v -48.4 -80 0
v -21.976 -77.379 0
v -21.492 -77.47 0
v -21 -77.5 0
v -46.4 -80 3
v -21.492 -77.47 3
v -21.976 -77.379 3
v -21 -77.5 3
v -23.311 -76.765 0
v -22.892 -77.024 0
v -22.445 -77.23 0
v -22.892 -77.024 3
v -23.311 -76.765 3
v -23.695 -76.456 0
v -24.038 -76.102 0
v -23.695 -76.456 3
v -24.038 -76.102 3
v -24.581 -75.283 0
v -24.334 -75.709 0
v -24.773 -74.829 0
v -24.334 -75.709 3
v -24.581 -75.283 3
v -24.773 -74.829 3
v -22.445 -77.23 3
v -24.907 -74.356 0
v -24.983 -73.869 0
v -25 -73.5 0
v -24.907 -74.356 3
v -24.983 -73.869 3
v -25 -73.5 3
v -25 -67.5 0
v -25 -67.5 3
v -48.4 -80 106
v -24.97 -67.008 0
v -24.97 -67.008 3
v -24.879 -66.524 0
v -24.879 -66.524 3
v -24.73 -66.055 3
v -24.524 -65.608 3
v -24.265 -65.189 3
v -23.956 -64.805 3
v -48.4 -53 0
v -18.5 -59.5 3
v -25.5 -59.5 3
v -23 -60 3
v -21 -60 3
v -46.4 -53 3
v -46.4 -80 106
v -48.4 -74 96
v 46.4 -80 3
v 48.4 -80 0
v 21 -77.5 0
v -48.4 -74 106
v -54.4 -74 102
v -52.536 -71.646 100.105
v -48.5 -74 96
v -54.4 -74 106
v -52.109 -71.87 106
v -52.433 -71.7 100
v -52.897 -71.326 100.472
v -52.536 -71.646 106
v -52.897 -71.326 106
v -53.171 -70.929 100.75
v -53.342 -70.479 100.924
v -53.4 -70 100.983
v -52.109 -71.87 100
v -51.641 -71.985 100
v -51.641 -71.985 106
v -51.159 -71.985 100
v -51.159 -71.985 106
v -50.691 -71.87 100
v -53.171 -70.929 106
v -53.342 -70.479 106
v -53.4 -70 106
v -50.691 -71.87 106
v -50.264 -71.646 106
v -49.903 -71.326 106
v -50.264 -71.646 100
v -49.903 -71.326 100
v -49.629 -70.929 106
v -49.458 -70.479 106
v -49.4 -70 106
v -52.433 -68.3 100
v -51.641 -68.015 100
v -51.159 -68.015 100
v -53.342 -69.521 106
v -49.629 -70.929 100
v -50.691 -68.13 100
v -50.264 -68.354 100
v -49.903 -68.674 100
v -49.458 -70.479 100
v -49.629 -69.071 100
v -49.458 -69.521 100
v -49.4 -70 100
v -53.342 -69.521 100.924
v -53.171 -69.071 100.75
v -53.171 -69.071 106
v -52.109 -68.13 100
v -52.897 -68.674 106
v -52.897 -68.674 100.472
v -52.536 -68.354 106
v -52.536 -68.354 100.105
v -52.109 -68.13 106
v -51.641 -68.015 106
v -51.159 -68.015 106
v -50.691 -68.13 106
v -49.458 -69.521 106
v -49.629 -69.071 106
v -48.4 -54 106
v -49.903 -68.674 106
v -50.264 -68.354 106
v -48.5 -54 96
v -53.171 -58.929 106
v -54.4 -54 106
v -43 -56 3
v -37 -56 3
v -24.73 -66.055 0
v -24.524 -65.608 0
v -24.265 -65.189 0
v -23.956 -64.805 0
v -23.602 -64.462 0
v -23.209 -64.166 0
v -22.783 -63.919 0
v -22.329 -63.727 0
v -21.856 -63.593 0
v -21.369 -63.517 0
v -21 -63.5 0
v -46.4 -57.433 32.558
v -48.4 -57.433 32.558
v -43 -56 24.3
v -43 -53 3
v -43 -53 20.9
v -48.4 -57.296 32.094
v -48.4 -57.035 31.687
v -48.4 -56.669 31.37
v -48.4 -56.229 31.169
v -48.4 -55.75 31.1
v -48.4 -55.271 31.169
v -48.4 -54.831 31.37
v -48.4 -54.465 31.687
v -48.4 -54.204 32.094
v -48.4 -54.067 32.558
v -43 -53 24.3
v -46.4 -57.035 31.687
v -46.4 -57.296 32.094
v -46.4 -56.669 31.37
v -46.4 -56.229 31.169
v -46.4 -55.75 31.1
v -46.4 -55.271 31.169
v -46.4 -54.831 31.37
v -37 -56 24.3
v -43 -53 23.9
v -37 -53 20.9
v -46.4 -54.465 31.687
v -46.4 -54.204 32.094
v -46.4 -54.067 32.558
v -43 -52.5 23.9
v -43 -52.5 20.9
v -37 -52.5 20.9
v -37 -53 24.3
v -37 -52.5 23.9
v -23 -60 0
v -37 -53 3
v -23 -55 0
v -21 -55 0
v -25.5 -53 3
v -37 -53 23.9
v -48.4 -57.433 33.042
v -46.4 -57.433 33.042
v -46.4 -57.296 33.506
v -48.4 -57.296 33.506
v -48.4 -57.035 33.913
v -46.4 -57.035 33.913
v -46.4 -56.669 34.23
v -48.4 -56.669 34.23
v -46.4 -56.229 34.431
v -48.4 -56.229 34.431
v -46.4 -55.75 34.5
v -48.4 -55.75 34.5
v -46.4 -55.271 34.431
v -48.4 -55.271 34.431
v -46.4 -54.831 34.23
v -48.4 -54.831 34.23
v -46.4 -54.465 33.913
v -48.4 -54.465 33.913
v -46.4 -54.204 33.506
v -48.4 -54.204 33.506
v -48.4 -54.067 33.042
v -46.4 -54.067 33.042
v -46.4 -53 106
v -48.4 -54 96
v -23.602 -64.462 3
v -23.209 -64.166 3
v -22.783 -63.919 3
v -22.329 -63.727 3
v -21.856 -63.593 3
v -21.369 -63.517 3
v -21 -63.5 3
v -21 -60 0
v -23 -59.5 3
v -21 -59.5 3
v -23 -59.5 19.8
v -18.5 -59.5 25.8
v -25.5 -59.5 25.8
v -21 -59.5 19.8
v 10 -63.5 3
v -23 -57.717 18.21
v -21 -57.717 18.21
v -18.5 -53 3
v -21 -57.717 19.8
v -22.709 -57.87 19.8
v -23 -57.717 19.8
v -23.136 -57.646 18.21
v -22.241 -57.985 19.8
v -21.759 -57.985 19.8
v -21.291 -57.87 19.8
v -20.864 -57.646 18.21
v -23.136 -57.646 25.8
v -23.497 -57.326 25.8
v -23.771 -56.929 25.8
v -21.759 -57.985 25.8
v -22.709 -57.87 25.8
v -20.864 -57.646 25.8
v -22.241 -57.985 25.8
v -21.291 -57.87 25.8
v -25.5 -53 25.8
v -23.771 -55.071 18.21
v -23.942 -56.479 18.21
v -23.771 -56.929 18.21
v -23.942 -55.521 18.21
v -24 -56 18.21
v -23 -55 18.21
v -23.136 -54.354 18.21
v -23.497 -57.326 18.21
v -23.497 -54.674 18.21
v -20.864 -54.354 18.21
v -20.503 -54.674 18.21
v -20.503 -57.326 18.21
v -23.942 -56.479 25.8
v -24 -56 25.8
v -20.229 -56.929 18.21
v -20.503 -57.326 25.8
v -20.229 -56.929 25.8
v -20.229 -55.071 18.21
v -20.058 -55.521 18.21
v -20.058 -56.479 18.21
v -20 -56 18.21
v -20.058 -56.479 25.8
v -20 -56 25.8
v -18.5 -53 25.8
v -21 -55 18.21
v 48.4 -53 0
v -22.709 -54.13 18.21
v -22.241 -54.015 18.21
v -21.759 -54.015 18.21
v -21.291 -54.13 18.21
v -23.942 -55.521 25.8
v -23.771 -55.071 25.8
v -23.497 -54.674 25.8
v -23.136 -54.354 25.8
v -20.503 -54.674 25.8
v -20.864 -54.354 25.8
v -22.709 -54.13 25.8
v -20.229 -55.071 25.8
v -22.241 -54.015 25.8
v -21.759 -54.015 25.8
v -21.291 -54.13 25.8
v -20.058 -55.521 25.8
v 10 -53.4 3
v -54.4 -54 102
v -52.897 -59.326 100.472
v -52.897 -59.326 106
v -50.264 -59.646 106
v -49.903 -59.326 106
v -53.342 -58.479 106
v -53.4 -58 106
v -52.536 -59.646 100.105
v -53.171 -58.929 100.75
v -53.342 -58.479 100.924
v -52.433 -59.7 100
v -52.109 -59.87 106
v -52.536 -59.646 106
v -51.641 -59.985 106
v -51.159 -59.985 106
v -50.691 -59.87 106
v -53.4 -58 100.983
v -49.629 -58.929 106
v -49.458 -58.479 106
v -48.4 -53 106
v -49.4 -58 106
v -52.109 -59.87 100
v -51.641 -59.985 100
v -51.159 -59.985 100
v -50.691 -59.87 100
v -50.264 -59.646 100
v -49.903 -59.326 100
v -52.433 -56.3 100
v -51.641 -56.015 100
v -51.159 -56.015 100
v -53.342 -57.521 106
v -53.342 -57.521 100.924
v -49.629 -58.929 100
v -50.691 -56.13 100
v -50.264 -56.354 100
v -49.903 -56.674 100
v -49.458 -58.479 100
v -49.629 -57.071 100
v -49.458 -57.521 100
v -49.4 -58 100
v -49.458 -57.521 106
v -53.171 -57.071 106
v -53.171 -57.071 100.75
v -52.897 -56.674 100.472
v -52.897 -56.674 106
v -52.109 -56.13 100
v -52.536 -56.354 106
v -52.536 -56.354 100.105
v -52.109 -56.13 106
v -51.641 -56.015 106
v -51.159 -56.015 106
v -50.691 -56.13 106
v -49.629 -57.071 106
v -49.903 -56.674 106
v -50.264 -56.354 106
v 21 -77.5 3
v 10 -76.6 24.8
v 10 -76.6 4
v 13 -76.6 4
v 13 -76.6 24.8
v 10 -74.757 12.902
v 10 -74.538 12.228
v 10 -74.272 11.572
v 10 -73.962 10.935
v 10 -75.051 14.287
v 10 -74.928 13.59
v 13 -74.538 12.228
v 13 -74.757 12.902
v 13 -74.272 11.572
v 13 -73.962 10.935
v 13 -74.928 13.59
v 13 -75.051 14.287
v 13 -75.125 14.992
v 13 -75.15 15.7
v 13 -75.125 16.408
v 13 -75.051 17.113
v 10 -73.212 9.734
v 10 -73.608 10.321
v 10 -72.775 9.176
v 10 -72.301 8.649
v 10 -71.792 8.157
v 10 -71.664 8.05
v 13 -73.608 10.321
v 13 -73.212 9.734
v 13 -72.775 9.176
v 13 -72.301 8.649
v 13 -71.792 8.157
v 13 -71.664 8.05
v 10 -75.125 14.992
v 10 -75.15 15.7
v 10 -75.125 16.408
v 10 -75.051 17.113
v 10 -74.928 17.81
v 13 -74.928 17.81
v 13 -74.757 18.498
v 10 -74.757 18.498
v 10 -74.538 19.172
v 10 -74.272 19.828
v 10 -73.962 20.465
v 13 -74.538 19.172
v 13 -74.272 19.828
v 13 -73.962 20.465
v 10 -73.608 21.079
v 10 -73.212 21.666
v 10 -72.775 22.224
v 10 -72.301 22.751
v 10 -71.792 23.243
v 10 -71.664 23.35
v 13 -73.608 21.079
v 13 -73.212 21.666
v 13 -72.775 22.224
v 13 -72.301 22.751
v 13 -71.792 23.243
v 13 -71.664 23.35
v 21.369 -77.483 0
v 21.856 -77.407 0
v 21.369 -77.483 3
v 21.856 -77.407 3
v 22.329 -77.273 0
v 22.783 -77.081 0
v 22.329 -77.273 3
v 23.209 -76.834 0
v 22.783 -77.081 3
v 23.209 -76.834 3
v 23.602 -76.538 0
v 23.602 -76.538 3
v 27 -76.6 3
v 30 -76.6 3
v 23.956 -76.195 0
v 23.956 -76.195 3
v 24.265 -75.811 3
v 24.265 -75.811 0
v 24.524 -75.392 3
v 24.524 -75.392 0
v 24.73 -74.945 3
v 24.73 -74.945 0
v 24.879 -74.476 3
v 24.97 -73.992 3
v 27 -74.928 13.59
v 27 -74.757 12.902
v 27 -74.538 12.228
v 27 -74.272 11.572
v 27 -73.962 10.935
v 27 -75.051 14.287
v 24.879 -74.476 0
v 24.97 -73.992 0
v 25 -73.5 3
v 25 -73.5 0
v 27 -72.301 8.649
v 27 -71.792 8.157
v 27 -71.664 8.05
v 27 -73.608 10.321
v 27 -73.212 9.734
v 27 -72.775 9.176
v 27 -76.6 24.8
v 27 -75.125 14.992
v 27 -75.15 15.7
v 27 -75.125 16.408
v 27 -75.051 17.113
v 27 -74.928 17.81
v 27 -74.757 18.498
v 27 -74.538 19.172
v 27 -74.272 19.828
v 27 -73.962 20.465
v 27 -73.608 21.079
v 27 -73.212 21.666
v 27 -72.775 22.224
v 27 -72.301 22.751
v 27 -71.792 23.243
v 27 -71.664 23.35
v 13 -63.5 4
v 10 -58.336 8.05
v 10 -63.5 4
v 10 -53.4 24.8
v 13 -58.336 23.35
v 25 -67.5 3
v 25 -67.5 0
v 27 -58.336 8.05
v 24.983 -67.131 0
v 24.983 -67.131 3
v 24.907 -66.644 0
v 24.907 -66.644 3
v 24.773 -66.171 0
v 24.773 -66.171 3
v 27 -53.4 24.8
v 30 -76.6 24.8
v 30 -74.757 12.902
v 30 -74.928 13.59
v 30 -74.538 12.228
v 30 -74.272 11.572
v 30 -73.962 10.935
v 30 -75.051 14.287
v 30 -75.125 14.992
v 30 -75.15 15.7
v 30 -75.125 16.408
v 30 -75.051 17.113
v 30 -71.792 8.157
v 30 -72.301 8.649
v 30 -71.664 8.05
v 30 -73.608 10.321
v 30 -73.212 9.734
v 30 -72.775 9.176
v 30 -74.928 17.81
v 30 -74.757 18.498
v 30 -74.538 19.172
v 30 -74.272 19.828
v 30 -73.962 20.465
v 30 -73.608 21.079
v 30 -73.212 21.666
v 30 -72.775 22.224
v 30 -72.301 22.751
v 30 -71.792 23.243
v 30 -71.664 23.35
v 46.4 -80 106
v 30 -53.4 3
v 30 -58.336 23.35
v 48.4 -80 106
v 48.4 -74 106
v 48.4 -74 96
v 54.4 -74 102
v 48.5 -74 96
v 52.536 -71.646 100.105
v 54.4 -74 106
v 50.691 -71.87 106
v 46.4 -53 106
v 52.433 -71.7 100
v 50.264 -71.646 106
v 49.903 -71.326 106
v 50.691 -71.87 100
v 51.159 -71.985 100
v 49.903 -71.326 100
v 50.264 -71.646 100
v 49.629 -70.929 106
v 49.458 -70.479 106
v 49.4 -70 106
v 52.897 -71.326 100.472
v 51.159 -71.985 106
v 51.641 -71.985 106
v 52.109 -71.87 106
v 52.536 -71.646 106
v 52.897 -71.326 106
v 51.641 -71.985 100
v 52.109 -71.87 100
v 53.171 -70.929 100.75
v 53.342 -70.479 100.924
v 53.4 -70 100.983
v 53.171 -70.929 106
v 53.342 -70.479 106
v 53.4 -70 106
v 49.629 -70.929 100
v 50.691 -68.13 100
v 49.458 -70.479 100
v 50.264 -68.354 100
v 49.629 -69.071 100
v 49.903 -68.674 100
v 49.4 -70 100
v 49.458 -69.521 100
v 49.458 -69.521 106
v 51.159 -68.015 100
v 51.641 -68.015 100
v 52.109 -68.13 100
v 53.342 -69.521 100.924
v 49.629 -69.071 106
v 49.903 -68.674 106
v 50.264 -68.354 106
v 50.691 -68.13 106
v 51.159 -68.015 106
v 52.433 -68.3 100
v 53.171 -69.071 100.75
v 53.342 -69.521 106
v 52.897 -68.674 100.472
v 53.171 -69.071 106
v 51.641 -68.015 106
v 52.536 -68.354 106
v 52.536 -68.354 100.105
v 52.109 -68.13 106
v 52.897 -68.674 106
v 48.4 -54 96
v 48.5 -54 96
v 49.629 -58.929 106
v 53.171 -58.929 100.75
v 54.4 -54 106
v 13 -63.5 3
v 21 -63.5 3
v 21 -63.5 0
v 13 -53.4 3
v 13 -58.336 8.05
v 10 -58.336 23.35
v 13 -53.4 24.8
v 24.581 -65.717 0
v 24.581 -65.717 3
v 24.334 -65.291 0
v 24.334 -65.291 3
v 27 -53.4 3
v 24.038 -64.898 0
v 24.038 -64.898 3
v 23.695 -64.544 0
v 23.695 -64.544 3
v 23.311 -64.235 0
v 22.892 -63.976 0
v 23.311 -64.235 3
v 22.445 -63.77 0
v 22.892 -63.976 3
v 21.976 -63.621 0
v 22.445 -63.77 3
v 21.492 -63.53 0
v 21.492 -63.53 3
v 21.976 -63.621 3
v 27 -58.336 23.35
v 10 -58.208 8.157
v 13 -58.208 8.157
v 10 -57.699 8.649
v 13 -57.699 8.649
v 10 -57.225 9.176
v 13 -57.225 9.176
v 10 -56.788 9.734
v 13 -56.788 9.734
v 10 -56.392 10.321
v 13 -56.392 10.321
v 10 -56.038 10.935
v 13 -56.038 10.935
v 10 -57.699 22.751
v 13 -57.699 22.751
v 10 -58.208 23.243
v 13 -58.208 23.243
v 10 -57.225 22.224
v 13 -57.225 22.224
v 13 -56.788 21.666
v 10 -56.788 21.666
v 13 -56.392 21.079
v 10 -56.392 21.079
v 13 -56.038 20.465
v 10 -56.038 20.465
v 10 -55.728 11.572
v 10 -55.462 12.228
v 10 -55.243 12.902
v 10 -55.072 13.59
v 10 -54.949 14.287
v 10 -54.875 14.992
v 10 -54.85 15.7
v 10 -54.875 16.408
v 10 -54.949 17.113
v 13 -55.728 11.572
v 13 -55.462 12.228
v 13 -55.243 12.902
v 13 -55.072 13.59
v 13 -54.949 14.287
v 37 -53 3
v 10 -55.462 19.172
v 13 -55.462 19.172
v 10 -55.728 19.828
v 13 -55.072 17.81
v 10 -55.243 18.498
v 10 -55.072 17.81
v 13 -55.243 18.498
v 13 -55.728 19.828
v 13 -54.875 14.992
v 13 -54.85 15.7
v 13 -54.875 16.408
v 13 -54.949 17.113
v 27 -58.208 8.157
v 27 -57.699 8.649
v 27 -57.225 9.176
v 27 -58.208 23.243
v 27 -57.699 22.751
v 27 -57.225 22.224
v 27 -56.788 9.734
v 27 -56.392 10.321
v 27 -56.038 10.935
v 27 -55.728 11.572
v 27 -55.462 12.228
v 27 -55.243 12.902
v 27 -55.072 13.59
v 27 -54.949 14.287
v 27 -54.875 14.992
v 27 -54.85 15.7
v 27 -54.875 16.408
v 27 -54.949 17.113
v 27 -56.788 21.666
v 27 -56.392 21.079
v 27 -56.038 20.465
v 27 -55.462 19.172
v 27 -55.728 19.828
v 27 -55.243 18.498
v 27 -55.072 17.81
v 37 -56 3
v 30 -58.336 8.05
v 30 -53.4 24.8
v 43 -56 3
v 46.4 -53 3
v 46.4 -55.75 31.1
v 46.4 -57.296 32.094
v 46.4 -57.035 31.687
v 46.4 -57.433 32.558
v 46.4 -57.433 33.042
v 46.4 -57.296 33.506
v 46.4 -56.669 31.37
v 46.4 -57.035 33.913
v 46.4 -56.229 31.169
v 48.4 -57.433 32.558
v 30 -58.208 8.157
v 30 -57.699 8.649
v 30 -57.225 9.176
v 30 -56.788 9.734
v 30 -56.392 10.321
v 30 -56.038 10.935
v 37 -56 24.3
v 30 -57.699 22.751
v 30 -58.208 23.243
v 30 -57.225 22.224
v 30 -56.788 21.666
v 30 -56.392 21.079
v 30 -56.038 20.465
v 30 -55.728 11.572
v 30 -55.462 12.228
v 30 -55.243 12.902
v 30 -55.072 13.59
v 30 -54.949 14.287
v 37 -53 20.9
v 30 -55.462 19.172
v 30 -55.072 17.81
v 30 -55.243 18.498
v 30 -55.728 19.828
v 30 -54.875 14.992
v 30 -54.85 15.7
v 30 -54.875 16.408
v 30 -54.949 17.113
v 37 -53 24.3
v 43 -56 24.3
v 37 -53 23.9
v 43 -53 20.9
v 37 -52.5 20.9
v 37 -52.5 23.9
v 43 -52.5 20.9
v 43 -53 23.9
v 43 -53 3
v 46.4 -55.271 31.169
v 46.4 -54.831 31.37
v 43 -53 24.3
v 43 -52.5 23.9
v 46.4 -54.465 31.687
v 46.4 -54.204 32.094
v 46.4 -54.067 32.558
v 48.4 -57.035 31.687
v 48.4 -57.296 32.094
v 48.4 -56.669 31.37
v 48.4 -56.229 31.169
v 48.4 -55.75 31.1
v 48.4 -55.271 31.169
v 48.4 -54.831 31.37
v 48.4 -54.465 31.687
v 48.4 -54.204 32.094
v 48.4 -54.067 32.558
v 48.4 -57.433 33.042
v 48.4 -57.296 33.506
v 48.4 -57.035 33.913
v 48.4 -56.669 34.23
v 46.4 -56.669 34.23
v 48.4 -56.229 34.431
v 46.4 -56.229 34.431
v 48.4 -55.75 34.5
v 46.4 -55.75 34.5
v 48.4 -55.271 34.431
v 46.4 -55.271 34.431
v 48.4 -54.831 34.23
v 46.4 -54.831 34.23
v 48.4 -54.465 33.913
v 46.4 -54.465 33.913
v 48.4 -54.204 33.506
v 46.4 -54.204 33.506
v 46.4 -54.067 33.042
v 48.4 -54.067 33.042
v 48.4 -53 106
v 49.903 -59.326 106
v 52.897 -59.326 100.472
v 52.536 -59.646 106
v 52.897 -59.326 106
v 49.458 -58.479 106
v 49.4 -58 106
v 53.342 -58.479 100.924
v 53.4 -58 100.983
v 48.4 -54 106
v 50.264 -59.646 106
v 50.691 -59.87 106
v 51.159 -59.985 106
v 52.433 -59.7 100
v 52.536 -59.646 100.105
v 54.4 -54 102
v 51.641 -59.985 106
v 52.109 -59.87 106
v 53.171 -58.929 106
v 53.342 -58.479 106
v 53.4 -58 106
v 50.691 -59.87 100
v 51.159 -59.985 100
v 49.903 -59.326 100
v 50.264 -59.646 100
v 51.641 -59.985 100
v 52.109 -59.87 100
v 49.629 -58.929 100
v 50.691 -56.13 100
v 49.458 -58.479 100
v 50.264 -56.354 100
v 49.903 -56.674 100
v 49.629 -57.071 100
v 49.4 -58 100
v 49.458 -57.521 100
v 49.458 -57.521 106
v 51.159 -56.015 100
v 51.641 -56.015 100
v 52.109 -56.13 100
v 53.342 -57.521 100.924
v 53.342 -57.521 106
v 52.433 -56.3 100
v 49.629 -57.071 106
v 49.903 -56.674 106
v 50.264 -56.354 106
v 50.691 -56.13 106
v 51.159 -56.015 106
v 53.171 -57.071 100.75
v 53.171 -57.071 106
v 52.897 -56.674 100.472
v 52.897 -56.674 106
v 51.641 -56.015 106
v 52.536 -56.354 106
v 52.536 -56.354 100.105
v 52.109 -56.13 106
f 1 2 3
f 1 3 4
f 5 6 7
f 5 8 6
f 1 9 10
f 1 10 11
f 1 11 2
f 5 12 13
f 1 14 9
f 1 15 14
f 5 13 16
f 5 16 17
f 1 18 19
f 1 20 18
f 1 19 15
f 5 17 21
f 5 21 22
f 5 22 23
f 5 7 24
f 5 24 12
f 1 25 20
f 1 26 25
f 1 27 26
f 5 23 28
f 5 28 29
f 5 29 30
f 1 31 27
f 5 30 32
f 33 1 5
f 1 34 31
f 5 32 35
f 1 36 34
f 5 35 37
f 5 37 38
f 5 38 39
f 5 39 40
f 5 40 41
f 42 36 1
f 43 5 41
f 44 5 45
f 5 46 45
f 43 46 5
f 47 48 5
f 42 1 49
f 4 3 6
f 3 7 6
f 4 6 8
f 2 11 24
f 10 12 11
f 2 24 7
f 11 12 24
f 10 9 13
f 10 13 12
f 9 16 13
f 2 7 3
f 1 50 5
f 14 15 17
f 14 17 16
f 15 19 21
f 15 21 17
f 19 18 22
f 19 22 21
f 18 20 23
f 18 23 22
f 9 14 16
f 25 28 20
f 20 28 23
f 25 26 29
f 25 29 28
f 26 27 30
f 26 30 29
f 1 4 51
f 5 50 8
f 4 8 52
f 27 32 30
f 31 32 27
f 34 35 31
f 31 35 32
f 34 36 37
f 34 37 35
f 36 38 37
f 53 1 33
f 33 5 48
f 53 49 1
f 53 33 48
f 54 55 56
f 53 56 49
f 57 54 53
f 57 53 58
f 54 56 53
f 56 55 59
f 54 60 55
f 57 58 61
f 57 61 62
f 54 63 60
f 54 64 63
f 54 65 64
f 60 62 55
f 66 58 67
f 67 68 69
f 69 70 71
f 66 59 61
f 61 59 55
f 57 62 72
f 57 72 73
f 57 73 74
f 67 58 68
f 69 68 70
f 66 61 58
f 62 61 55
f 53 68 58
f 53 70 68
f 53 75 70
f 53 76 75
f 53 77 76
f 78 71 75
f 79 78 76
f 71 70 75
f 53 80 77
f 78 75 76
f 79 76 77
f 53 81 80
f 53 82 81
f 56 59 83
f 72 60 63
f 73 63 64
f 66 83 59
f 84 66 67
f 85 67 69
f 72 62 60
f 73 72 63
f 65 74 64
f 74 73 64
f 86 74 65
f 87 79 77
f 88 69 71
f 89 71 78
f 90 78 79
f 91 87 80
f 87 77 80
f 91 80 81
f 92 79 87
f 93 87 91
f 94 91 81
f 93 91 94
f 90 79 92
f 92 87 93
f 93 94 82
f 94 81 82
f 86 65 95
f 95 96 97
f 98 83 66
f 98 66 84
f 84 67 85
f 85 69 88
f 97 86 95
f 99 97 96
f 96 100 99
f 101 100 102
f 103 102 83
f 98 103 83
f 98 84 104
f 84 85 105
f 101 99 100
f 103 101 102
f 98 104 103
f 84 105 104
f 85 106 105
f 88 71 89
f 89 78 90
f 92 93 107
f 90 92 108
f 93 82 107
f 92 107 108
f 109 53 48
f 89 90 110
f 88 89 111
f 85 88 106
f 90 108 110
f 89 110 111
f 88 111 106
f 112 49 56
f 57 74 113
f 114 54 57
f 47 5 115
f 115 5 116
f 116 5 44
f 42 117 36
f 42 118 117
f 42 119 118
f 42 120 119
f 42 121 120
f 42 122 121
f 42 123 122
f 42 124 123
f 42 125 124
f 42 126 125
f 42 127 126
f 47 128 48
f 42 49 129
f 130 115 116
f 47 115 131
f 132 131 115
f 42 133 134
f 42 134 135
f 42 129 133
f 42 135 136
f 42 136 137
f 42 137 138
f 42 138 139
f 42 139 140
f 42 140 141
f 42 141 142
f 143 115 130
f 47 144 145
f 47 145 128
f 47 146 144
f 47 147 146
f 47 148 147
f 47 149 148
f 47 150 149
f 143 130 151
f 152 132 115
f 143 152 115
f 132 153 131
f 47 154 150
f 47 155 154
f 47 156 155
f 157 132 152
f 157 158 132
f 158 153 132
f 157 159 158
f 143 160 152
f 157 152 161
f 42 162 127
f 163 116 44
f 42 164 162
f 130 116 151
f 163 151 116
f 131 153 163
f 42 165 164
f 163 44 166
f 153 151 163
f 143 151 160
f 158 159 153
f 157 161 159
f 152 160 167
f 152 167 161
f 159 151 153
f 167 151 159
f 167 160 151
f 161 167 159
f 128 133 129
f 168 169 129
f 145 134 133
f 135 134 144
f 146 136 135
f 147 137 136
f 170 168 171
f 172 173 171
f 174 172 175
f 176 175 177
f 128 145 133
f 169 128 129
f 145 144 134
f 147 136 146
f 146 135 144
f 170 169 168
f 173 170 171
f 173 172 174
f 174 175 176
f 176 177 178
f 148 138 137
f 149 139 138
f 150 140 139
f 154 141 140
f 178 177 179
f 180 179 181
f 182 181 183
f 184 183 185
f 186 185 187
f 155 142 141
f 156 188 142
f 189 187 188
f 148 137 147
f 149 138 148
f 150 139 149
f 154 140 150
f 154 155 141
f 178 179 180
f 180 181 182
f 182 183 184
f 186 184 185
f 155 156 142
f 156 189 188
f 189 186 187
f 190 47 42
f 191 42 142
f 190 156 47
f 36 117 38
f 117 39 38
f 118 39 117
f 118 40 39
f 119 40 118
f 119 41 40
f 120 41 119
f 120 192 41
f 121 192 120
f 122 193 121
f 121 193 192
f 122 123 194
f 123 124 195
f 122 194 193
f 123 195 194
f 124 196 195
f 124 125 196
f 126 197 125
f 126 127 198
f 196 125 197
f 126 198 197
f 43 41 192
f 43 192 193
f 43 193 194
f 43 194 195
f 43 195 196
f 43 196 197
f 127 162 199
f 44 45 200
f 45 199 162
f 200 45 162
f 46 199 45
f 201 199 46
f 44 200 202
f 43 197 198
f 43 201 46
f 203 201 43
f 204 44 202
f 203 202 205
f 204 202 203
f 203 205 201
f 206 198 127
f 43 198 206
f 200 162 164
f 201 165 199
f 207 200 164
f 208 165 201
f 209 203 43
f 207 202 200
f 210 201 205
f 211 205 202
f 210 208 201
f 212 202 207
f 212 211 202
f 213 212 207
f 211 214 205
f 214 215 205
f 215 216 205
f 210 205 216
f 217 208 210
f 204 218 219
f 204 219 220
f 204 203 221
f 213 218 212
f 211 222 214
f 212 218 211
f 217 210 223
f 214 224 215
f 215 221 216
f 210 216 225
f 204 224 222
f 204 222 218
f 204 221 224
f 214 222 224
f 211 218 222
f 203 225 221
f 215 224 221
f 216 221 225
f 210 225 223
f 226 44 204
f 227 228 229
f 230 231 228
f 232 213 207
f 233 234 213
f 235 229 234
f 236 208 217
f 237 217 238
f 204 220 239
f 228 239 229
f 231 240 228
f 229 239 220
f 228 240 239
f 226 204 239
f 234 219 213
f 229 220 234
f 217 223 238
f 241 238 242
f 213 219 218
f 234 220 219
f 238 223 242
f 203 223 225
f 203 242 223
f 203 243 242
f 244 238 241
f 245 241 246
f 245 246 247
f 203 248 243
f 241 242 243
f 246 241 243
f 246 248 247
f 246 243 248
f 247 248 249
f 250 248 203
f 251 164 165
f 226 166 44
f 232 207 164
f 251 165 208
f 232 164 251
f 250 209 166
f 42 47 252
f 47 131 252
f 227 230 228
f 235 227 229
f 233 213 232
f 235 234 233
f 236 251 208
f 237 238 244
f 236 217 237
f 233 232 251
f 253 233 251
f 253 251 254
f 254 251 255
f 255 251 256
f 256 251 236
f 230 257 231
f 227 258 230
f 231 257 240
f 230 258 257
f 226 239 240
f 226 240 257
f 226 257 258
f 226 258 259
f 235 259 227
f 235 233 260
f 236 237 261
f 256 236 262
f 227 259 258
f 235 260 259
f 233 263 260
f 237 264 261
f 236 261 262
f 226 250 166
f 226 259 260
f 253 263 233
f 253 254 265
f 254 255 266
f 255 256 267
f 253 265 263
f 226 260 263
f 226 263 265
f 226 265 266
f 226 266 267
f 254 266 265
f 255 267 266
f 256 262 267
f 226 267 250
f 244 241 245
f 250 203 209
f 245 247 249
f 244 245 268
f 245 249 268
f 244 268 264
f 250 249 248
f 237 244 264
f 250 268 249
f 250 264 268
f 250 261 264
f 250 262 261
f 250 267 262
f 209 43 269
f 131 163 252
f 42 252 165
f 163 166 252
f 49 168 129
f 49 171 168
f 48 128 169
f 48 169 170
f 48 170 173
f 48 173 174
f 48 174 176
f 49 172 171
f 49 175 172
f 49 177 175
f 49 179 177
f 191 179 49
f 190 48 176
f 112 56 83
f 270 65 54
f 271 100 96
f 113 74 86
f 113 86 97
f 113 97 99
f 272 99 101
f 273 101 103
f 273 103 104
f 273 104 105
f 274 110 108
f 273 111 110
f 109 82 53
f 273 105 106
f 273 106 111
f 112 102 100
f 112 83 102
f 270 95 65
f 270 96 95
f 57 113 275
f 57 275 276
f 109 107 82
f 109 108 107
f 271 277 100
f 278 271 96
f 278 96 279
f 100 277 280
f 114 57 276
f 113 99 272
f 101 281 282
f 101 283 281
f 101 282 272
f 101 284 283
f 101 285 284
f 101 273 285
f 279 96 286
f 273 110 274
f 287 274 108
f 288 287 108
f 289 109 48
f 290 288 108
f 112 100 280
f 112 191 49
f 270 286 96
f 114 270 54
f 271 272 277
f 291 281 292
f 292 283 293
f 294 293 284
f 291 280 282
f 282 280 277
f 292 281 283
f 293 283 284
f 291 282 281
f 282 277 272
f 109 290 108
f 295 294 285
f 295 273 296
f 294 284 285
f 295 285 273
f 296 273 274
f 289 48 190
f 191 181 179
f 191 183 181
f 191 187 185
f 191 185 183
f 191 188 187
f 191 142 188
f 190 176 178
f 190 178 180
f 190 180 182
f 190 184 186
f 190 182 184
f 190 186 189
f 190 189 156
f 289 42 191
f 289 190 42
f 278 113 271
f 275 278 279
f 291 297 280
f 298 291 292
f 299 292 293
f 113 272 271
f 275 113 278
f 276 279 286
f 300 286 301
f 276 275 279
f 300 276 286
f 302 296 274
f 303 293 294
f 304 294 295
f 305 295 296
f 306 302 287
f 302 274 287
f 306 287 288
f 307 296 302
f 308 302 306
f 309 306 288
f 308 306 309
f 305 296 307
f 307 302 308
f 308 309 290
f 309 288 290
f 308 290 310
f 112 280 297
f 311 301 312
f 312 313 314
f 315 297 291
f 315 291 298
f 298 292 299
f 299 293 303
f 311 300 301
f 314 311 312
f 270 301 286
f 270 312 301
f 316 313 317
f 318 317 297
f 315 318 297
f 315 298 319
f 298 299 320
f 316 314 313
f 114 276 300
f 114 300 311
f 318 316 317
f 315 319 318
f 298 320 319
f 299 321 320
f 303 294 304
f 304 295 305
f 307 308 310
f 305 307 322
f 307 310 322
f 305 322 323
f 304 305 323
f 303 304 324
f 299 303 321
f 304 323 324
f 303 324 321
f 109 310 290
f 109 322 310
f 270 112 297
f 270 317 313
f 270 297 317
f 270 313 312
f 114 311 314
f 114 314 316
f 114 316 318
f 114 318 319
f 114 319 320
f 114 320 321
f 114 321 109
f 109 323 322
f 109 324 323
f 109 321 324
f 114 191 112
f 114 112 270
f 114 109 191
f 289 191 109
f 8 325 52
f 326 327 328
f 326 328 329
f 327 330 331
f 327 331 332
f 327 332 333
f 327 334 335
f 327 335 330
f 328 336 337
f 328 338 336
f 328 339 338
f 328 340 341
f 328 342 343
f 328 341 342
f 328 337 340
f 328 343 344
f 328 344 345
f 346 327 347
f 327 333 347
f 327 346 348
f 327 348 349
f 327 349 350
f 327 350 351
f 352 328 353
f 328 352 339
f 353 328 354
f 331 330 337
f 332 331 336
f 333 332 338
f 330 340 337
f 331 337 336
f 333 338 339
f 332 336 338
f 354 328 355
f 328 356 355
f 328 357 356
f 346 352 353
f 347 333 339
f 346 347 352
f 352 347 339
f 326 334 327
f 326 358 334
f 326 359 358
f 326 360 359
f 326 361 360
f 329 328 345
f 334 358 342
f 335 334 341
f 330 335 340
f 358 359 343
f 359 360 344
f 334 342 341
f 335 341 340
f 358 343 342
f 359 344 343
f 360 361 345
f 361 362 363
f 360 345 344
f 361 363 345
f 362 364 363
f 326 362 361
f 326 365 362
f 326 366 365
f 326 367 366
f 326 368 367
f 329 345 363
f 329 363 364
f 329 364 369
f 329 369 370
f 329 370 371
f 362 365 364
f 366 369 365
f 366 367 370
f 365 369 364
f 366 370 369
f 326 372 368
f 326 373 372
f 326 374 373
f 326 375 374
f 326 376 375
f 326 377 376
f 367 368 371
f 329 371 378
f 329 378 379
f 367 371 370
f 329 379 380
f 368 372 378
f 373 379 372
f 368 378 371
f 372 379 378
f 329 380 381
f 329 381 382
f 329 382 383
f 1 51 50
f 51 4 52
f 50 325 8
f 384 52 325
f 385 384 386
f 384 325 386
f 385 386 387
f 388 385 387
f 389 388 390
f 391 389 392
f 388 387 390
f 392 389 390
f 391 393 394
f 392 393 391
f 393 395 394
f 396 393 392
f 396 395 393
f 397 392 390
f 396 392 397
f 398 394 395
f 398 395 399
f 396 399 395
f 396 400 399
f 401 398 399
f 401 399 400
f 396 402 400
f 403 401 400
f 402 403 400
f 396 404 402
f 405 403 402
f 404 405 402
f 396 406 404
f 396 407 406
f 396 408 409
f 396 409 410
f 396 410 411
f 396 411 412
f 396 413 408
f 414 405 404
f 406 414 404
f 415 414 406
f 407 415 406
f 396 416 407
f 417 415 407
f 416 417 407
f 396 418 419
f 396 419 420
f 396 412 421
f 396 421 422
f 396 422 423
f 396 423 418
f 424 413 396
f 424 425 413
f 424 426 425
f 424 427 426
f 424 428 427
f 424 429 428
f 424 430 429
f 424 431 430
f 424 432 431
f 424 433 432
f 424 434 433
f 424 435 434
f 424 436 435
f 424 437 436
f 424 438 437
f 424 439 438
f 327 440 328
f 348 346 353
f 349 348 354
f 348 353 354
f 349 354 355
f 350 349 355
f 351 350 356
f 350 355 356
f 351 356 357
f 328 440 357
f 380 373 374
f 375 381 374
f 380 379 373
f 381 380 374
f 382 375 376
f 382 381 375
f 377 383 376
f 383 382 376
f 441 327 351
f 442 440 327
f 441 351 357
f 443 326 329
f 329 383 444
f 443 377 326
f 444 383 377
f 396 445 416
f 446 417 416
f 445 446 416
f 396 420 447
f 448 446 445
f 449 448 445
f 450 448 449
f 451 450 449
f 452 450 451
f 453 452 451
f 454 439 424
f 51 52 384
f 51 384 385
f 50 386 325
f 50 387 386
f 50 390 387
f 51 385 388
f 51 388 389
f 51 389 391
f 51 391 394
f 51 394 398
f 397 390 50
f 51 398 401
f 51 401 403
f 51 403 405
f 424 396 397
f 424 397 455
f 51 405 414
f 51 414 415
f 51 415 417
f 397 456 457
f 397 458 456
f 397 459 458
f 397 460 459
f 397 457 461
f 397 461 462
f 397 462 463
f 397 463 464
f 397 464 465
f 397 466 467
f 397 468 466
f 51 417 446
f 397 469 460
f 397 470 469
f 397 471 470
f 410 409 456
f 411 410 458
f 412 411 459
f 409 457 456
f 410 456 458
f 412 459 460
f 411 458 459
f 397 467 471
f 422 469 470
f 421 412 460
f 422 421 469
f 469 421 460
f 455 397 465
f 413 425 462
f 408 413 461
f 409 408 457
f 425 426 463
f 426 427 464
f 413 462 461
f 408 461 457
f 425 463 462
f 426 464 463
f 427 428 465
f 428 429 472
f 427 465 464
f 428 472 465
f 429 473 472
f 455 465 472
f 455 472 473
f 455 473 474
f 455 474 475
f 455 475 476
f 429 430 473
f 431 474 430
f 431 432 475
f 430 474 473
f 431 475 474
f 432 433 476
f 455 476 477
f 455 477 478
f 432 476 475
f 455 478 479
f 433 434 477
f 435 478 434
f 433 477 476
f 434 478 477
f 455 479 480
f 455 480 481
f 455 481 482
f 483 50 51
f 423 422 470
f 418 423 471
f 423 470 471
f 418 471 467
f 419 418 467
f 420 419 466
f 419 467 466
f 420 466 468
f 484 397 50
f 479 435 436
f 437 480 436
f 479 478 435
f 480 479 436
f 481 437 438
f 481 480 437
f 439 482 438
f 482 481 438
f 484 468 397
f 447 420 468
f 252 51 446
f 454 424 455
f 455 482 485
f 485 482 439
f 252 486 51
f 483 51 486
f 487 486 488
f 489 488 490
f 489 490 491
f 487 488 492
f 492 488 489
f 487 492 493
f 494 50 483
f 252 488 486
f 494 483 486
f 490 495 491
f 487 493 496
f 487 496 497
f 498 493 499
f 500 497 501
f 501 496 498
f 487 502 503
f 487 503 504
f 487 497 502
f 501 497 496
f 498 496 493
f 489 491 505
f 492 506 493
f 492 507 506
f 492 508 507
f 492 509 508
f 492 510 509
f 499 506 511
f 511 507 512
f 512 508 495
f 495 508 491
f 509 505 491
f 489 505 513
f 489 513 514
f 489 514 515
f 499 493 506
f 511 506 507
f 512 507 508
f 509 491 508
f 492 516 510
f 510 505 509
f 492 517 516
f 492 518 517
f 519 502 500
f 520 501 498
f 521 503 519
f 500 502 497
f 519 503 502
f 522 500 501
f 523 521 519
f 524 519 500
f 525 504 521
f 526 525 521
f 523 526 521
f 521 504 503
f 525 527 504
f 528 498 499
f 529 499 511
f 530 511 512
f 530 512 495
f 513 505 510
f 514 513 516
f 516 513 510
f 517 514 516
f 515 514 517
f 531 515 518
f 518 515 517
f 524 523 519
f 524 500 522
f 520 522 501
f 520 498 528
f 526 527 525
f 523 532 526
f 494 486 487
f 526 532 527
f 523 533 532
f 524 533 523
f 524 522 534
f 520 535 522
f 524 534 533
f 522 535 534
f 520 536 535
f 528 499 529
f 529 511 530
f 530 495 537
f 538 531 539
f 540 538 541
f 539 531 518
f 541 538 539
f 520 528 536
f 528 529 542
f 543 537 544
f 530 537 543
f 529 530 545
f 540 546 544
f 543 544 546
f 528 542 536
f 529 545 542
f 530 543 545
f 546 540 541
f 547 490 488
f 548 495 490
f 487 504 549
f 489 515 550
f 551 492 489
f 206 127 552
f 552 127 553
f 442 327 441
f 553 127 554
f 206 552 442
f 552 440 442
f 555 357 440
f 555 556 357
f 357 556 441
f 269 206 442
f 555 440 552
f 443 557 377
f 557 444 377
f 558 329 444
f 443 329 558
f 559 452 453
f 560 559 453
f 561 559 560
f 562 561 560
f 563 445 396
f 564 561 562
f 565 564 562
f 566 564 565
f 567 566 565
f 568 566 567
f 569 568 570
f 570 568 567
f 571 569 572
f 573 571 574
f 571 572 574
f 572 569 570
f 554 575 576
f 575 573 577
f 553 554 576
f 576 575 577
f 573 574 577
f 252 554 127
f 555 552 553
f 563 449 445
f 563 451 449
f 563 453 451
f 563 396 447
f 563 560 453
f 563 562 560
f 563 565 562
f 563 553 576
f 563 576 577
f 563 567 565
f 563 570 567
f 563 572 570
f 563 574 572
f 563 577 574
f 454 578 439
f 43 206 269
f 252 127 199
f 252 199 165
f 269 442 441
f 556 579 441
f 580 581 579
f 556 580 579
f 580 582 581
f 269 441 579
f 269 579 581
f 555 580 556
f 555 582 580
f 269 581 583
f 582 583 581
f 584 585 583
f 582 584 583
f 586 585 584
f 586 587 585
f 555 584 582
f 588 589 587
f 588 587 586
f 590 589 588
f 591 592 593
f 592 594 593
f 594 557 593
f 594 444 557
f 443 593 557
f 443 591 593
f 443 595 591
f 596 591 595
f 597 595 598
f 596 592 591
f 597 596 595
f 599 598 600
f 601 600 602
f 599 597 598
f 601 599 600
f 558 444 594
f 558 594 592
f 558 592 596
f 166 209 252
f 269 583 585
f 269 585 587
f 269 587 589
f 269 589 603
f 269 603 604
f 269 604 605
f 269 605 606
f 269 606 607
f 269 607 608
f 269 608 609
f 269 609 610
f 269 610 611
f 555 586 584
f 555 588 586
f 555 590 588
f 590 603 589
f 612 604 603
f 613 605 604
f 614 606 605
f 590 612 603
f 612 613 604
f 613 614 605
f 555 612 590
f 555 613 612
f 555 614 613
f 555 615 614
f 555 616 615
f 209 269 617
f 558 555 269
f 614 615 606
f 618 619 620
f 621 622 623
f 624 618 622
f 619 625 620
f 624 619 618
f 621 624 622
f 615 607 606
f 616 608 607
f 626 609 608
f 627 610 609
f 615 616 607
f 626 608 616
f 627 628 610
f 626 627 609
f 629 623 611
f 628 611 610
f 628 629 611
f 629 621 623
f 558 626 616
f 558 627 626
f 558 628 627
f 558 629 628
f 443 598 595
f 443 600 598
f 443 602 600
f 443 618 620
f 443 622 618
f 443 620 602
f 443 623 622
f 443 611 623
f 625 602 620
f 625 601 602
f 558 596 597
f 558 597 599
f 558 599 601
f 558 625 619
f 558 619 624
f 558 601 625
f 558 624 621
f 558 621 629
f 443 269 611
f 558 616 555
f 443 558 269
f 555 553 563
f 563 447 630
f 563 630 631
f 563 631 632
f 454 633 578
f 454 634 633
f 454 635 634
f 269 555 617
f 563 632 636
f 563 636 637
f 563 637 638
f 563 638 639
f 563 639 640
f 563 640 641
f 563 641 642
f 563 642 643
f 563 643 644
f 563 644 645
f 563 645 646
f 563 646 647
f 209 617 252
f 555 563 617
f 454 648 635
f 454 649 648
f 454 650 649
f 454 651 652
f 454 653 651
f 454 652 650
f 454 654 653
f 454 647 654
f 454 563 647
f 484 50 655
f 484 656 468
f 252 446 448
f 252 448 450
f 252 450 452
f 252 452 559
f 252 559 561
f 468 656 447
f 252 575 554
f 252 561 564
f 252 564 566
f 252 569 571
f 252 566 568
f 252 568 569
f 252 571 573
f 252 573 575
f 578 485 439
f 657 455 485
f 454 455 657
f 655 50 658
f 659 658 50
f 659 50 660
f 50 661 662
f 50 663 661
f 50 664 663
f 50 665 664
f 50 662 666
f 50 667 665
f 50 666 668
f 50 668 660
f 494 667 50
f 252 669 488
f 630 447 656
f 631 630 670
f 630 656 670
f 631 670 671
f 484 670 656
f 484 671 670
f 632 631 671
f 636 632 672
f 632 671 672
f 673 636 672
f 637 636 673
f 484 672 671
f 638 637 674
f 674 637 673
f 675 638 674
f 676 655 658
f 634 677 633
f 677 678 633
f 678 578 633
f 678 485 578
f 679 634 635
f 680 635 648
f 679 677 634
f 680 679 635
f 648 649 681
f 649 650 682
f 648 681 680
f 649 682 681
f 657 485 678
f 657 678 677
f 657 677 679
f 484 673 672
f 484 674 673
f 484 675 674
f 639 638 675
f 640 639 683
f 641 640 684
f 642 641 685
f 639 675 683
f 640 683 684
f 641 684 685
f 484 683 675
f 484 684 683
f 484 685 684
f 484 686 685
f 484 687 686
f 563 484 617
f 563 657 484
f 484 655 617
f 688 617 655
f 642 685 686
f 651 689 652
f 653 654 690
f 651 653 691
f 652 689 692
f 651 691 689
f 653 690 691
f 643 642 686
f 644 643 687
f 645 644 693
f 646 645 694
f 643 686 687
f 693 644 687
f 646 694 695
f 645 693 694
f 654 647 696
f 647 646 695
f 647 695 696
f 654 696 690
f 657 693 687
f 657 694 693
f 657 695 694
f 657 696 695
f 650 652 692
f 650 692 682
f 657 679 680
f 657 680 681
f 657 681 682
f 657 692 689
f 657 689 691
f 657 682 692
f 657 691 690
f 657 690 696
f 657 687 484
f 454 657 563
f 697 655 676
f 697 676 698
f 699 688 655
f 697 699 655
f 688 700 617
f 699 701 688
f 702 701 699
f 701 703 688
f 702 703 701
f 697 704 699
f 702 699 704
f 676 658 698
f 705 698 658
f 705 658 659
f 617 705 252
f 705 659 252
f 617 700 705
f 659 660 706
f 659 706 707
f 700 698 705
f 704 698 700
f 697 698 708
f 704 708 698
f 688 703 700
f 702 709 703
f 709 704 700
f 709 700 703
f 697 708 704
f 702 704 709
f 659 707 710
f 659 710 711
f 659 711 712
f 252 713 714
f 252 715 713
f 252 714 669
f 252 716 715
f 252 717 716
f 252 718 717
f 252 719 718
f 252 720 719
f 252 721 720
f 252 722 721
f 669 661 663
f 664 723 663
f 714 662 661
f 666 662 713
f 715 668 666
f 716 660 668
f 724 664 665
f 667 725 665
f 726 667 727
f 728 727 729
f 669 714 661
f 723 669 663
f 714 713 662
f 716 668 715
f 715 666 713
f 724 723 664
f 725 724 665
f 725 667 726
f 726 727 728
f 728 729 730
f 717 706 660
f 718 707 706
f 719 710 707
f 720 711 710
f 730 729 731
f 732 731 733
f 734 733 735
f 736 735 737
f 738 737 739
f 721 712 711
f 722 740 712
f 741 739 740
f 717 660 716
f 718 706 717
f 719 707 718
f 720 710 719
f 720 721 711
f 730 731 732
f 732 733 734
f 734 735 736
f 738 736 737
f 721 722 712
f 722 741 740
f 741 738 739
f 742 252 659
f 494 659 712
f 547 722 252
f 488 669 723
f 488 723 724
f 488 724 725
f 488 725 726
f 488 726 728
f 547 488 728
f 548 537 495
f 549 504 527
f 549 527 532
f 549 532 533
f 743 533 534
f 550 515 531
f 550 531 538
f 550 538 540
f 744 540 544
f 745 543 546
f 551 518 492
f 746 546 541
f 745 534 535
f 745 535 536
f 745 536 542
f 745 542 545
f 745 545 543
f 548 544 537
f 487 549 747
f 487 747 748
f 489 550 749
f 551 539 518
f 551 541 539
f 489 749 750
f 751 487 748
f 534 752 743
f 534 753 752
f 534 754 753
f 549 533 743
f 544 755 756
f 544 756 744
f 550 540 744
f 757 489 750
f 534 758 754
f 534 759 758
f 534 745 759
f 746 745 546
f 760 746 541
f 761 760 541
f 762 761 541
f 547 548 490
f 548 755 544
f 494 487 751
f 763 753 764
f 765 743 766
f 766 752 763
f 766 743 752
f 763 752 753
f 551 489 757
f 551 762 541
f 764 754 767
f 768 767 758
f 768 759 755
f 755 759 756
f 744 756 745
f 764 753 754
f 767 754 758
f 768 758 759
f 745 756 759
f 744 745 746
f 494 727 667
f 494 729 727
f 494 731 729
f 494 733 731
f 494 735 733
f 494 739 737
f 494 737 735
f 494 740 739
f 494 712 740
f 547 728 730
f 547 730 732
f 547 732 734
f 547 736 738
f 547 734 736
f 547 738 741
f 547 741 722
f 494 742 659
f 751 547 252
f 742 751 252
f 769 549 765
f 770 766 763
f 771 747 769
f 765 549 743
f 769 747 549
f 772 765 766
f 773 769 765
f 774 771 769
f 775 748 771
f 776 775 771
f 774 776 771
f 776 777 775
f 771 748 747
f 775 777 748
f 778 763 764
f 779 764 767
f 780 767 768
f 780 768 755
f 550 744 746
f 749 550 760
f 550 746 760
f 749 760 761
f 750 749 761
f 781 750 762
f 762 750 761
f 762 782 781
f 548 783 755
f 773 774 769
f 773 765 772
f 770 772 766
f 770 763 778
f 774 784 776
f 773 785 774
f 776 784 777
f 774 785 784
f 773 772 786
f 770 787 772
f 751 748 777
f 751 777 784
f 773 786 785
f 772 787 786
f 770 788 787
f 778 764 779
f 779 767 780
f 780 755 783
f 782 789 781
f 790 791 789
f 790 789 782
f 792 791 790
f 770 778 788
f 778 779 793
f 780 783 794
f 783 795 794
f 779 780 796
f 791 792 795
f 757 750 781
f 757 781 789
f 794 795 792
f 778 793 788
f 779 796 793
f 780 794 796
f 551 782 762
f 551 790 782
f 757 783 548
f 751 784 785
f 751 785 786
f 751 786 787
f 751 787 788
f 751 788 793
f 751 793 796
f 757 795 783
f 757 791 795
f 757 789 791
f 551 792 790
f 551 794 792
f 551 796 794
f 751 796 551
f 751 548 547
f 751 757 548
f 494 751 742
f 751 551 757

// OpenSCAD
// file: lib/lib.scad
// Shared helpers. Include AFTER params.scad (needs TOL, M3_* etc.).
$fa = 4; $fs = 0.5;

module rrect(size, r) {            // 2D rounded rectangle, centred
    r2 = min(r, min(size[0], size[1]) / 2 - 0.001);
    offset(r = r2) square([size[0] - 2 * r2, size[1] - 2 * r2], center = true);
}
module rbox(size, r, center_xy = true) {   // box with rounded vertical edges
    translate(center_xy ? [0, 0, 0] : [size[0] / 2, size[1] / 2, 0])
        linear_extrude(size[2]) rrect([size[0], size[1]], r);
}
module rbox_at(x0, x1, y0, y1, z0, z1, r = 0.01) {
    translate([(x0 + x1) / 2, (y0 + y1) / 2, z0]) rbox([x1 - x0, y1 - y0, z1 - z0], r);
}
module box_at(x0, x1, y0, y1, z0, z1) { translate([x0, y0, z0]) cube([x1 - x0, y1 - y0, z1 - z0]); }

module ring(ro, ri, h) { difference() { cylinder(r = ro, h = h); translate([0, 0, -1]) cylinder(r = ri, h = h + 2); } }
module ring_sector(ro, ri, h, a0, a1) {
    intersection() {
        ring(ro, ri, h);
        linear_extrude(h) polygon(concat([[0, 0]], [for (a = [a0 : (a1 - a0) / 24 : a1]) 2 * ro * [cos(a), sin(a)]]));
    }
}
// teardrop hole along an axis lying horizontal (axis = Y after rotation), printable w/o support
module teardrop2d(d) { union() { circle(d = d); rotate(45) square(d / 2); } }
// vertical heat-set insert hole, opening at z=0 going +z (depth l)
module insert_hole(l = M3_INSERT_L) { translate([0, 0, -EPS]) cylinder(d = M3_INSERT_D, h = l + EPS); }
module m3_clear(l) { translate([0, 0, -EPS]) cylinder(d = M3_CLEAR, h = l + 2 * EPS); }
module m3_csk(l) {  // countersunk clearance from z=0 upward, head at z=0 side
    translate([0, 0, -EPS]) { cylinder(d = M3_CLEAR, h = l + 2 * EPS); cylinder(d1 = 6.4, d2 = M3_CLEAR, h = 1.7); }
}
module card2d() { rrect([CARD_L, CARD_W], CARD_R); }
module card_at(cy, z) { translate([0, cy, z]) linear_extrude(CARD_T) card2d(); }

// ---- gears ----
function _inv(a) = tan(a) - a * PI_ / 180;           // involute function, a in deg
function _invpt(rb, r, ang0, s) = let(al = acos(rb / r), th = ang0 - s * (_inv(al) * 180 / PI_)) [r * cos(th), r * sin(th)];
module involute_gear2d(m, z, pa = 20, clearance = 0.05) {
    rp = m * z / 2; rb = rp * cos(pa); ra = rp + m - clearance; rf = rp - 1.25 * m;
    half = 90 / z + _inv(pa) * 180 / PI_;            // tooth half-angle at base (deg)
    n = 8;
    rs = [for (i = [0 : n]) max(rb, rf) + (ra - max(rb, rf)) * i / n];
    union() {
        circle(r = rf, $fn = z * 4);
        for (k = [0 : z - 1]) rotate(k * 360 / z) polygon(concat(
            [[rf * cos(-half), rf * sin(-half)]],
            [for (r = rs) let(p = _invpt(rb, r, half, 1)) [p[0], -p[1]]],
            [for (i = [n : -1 : 0]) _invpt(rb, rs[i], half, 1)],
            [[rf * cos(half), rf * sin(half)]]));
    }
}
// straight gear rack (2D in XY: teeth along +x, pointing -y, pitch line at y=0)
module gear_rack2d(m, len, back = 3) {
    p = PI_ * m; ad = m; de = 1.25 * m; t = tan(20);
    n = ceil(len / p) + 1;
    intersection() {
        union() {
            translate([0, de]) square([len, back]);
            for (i = [0 : n]) translate([i * p - p / 4, 0]) polygon([
                [-(p / 4 + de * t), de + 0.01], [p / 4 + de * t + 0.01, de + 0.01],
                [p / 4 - ad * t, -ad], [-(p / 4 - ad * t), -ad] ]);
        }
        translate([0, -ad - 1]) square([len, ad + de + back + 2]);
    }
}
// GT2 belt-tooth profile ring (teeth outward), 2D
module gt2_ring2d(n, r_land, ri) {
    union() {
        difference() { circle(r = r_land + 0.01, $fn = n * 2); circle(r = ri, $fn = n * 2); }
        for (k = [0 : n - 1]) rotate(k * 360 / n)
            translate([r_land, 0]) hull() { translate([-0.2, 0]) square([0.2, 1.0], center = true); translate([0.25, 0]) circle(r = 0.5, $fn = 12); }
    }
}
// main file
// Launcher frame: two side plates + top plate, 130-motor cheeks, load-stop fingers
// (stop cards loaded at Z_LOAD flush with the rack face), exit IR emitter holder,
// wedge feet to the turntable. The burn drawer slides between the side plates.
// Print: upside down (top plate on bed); feet are 45 deg wedges, motor holes bridge 20 mm.
include <params.scad>
include <lib/lib.scad>
e = Z_EJECT;
LF_TOP_Z1 = LF_TOP_Z0 + LF_TOP_T;
CHEEKS = [[10, 13], [27, 30]];
module m130_profile2d(grow = 0) intersection() { circle(d = 20 + 2 * grow); square([22 + 2 * grow, 15 + 2 * grow], center = true); }
module launcher_frame() difference() {
    union() {
        for (s = [-1, 1]) box_at(s > 0 ? LF_XI : -LF_XO, s > 0 ? LF_XO : -LF_XI, LF_Y0, LF_Y1, TT_TOP, LF_TOP_Z1);
        box_at(-LF_XO, LF_XO, LF_Y0, LF_Y1, LF_TOP_Z0, LF_TOP_Z1);
        for (s = [-1, 1]) hull() {     // wedge feet
            box_at(s > 0 ? LF_XO - EPS : -LF_XO - 6, s > 0 ? LF_XO + 6 : -LF_XO + EPS, LF_Y0 + 1, 74, TT_TOP, TT_TOP + 4);
            box_at(s > 0 ? LF_XO - EPS : -LF_XO - 0.1, s > 0 ? LF_XO + 0.1 : -LF_XO + EPS, LF_Y0 + 1, 74, TT_TOP, TT_TOP + 10);
        }
        for (c = CHEEKS) box_at(c[0], c[1], NIP_Y - 11.6, NIP_Y + 11.6, WHEEL_Z - 9.1, LF_TOP_Z0 + EPS);
        for (s = [-1, 1]) {   // finger posts (set back) + short stop tabs at the load plane
            box_at(s * FINGER_X - 3, s * FINGER_X + 3, LF_Y0, LF_Y0 + 3, Z_LOAD - 1, LF_TOP_Z0 + EPS);
            box_at(s * FINGER_X - 3, s * FINGER_X + 3, FINGER_Y, LF_Y0 + EPS, Z_LOAD - 0.6, Z_LOAD + 2.4);
        }
        box_at(EXITIR_X - 3.5, EXITIR_X + 3.5, LF_Y0, EXITIR_Y + 3.5, e + 2, LF_TOP_Z0 + EPS);
    }
    for (c = CHEEKS) translate([c[0] - 1, NIP_Y, WHEEL_Z]) rotate([0, 90, 0]) rotate(90) linear_extrude(c[1] - c[0] + 2) m130_profile2d(0.15);
    translate([EXITIR_X, EXITIR_Y, e + 2 - EPS]) { cylinder(d = 3.2, h = 1.6); cylinder(d = 4.0, h = 7.6); }
    translate([EXITIR_X, EXITIR_Y, e + 8]) box_at(-1, 1, -1, 4, 0, 60);
    for (p = FIX_LAUNCH) translate([p[0], p[1], TT_TOP]) insert_hole();
    for (s = [-1, 1]) translate([s * LF_XI, (LF_Y0 + LFL_Y1) / 2, e - 5]) rotate([0, 90, 0]) cylinder(d = M3_CLEAR, h = 10, center = true);
    translate([0, (LF_Y0 + LF_Y1) / 2 + 4, LF_TOP_Z0 - 1]) linear_extrude(10) rrect([50, 14], 4);   // lightening / wire pass
}
module launcher_frame_print() translate([0, 0, LF_TOP_Z1]) rotate([180, 0, 0]) launcher_frame();
launcher_frame_print();
